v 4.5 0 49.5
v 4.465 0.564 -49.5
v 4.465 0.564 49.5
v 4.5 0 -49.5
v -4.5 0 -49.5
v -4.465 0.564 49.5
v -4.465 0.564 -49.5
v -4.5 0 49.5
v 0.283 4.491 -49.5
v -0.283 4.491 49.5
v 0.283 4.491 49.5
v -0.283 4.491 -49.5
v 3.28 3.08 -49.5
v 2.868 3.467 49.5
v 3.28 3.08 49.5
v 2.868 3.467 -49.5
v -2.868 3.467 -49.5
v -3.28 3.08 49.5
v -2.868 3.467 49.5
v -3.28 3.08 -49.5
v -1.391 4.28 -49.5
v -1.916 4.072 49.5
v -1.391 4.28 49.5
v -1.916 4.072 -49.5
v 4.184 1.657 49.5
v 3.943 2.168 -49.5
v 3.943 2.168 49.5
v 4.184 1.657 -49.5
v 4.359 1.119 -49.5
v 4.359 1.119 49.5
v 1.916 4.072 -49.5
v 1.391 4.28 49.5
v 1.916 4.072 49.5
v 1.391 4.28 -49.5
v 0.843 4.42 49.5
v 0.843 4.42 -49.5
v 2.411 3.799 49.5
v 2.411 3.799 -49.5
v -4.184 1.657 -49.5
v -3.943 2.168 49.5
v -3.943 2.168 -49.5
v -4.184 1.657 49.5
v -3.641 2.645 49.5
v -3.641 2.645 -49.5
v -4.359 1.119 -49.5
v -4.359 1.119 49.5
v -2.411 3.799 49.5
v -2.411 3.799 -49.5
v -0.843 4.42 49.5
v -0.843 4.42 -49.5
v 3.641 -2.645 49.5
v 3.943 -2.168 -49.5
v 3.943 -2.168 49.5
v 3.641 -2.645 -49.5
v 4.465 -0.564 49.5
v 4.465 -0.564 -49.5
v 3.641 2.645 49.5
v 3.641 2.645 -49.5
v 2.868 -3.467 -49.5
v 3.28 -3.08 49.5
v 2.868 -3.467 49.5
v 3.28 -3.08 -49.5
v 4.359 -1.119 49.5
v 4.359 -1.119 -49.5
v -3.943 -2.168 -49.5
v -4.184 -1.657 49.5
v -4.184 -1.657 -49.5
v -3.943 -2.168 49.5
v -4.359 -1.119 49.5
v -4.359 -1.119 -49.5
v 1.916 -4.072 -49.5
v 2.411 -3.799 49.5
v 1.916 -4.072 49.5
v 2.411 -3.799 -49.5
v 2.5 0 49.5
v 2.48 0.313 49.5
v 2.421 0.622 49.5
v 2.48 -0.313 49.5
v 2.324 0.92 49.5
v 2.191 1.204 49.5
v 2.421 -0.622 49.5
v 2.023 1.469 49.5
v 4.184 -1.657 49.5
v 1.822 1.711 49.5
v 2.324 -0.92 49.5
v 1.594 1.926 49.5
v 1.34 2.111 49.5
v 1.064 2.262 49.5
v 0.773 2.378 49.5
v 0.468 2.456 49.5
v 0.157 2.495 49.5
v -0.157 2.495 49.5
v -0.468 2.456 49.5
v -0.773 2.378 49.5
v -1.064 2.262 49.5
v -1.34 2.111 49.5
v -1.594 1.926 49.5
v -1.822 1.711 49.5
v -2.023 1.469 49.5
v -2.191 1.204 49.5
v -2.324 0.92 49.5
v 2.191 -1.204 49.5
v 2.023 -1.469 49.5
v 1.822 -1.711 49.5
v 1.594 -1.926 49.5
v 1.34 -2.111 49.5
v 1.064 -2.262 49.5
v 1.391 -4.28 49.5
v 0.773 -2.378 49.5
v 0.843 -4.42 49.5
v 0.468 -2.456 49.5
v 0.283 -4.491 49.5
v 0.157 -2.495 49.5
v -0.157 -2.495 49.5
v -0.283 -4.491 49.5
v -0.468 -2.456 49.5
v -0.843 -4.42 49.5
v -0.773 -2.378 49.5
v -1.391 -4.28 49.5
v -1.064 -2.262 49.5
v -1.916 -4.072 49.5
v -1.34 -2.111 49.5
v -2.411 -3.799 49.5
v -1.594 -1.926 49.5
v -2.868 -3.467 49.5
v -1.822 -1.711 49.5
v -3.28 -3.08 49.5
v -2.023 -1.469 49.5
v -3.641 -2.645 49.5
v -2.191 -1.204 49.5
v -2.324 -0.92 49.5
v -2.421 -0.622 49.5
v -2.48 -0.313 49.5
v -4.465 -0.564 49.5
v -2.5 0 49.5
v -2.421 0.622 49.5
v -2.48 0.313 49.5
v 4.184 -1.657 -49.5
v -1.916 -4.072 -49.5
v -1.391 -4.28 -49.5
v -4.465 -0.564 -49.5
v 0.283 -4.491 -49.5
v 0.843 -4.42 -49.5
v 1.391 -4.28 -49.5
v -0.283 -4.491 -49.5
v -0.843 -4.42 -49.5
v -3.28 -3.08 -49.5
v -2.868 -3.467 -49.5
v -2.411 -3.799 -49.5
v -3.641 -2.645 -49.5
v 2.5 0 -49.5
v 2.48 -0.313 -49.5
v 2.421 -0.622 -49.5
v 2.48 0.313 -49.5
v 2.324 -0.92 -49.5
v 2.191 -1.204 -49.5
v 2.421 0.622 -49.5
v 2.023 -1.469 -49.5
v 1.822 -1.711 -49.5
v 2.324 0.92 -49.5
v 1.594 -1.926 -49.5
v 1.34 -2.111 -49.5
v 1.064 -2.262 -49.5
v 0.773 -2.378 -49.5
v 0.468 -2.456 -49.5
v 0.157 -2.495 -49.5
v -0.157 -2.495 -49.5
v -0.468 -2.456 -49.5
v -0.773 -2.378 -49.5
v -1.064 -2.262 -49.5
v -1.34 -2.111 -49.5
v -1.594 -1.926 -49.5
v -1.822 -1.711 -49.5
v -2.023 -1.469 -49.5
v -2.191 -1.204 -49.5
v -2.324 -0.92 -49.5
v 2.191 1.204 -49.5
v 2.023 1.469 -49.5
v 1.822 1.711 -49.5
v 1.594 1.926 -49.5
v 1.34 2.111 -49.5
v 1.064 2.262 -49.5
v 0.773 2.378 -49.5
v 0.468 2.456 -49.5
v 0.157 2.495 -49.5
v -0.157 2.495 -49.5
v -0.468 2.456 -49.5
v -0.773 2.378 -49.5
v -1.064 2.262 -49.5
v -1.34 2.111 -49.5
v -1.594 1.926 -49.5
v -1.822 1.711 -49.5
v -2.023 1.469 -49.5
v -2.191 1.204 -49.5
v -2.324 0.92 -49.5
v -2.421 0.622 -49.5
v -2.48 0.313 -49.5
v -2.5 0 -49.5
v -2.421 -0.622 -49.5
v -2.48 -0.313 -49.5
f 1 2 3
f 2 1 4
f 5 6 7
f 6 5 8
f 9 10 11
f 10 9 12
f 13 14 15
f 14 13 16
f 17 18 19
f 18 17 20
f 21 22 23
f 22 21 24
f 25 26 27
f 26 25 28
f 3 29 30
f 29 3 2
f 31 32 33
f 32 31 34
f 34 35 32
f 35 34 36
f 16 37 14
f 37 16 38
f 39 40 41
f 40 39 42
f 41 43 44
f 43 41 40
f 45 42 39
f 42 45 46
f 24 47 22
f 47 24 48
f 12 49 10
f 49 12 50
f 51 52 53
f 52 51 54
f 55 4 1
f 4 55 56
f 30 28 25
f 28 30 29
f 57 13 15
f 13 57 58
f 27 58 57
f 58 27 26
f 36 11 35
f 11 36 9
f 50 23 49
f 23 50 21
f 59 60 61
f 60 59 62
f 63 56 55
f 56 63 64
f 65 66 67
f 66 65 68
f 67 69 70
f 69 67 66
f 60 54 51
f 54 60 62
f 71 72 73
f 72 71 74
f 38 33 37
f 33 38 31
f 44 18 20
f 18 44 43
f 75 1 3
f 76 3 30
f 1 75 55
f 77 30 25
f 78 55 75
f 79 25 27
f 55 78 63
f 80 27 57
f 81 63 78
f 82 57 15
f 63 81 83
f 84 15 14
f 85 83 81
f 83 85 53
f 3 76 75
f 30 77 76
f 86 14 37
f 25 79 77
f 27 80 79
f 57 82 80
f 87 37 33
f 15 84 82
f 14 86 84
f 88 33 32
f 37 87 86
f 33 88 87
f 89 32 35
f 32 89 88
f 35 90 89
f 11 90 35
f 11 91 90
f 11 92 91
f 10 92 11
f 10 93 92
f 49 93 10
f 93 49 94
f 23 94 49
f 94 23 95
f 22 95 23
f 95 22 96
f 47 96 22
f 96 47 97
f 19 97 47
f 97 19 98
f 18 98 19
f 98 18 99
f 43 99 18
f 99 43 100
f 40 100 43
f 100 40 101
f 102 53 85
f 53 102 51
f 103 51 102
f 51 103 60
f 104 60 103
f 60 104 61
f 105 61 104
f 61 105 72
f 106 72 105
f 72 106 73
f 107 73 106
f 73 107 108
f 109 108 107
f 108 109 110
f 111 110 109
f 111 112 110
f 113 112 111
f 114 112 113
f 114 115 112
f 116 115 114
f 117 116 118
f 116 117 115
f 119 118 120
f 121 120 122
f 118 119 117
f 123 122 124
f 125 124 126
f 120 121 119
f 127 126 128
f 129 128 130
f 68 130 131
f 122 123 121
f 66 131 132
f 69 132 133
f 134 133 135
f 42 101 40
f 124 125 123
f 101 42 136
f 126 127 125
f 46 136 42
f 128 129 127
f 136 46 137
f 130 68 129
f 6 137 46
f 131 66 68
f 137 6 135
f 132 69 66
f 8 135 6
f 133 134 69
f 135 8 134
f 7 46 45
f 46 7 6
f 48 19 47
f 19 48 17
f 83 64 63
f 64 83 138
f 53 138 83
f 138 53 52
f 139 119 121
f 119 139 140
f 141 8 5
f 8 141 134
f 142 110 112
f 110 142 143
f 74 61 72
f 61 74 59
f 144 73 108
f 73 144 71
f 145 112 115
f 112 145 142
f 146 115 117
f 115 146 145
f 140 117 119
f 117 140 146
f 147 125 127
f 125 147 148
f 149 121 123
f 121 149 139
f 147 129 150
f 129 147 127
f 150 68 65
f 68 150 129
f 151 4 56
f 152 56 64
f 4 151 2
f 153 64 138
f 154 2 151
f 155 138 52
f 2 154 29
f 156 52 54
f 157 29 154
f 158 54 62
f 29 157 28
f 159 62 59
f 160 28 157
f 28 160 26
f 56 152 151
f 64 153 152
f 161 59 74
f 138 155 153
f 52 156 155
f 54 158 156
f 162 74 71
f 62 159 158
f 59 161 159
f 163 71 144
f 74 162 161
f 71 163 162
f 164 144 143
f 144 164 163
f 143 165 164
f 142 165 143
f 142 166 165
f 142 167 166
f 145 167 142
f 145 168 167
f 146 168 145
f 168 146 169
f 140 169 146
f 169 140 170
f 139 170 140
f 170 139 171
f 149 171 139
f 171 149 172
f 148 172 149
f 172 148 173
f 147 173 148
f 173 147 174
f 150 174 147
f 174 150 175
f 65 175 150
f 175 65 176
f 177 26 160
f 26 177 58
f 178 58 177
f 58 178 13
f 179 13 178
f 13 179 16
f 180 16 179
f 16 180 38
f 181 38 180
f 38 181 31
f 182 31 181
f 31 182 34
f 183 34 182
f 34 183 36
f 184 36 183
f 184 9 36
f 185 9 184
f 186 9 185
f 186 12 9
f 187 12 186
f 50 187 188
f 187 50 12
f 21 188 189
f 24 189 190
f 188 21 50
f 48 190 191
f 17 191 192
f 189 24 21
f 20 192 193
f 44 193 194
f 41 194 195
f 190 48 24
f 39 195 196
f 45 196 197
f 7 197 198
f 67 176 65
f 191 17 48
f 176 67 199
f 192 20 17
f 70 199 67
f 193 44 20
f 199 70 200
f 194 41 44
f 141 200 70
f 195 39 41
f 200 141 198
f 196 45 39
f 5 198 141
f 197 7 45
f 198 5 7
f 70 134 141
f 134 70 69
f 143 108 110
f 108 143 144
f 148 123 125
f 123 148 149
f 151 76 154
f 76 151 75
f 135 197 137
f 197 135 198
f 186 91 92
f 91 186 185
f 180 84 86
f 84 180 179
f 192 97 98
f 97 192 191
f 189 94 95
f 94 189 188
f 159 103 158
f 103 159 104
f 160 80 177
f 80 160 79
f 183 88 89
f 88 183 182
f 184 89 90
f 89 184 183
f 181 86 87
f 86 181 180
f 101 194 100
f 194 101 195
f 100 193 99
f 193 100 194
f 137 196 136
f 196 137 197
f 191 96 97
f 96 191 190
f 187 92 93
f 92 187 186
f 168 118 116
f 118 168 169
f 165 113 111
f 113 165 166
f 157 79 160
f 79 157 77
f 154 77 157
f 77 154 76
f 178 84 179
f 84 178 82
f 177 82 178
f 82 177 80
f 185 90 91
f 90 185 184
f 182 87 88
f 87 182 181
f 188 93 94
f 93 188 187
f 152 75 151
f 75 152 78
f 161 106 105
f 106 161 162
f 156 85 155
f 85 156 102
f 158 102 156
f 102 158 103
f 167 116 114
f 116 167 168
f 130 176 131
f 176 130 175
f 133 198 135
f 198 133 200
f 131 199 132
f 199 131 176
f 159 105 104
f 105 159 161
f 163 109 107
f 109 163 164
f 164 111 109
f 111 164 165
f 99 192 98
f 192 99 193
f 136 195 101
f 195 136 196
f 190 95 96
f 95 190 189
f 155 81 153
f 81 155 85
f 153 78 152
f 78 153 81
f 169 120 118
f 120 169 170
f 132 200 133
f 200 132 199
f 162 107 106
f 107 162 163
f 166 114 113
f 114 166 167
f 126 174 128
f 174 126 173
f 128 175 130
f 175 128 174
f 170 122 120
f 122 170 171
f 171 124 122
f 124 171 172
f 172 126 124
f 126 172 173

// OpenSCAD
$fn = 50;


difference() {
	union() {
		translate(v = [0, 0, -49.5000000000]) {
			cylinder(h = 99, r = 4.5000000000);
		}
	}
	union() {
		translate(v = [0, 0, -100.0000000000]) {
			cylinder(h = 200, r = 2.5000000000);
		}
	}
}
